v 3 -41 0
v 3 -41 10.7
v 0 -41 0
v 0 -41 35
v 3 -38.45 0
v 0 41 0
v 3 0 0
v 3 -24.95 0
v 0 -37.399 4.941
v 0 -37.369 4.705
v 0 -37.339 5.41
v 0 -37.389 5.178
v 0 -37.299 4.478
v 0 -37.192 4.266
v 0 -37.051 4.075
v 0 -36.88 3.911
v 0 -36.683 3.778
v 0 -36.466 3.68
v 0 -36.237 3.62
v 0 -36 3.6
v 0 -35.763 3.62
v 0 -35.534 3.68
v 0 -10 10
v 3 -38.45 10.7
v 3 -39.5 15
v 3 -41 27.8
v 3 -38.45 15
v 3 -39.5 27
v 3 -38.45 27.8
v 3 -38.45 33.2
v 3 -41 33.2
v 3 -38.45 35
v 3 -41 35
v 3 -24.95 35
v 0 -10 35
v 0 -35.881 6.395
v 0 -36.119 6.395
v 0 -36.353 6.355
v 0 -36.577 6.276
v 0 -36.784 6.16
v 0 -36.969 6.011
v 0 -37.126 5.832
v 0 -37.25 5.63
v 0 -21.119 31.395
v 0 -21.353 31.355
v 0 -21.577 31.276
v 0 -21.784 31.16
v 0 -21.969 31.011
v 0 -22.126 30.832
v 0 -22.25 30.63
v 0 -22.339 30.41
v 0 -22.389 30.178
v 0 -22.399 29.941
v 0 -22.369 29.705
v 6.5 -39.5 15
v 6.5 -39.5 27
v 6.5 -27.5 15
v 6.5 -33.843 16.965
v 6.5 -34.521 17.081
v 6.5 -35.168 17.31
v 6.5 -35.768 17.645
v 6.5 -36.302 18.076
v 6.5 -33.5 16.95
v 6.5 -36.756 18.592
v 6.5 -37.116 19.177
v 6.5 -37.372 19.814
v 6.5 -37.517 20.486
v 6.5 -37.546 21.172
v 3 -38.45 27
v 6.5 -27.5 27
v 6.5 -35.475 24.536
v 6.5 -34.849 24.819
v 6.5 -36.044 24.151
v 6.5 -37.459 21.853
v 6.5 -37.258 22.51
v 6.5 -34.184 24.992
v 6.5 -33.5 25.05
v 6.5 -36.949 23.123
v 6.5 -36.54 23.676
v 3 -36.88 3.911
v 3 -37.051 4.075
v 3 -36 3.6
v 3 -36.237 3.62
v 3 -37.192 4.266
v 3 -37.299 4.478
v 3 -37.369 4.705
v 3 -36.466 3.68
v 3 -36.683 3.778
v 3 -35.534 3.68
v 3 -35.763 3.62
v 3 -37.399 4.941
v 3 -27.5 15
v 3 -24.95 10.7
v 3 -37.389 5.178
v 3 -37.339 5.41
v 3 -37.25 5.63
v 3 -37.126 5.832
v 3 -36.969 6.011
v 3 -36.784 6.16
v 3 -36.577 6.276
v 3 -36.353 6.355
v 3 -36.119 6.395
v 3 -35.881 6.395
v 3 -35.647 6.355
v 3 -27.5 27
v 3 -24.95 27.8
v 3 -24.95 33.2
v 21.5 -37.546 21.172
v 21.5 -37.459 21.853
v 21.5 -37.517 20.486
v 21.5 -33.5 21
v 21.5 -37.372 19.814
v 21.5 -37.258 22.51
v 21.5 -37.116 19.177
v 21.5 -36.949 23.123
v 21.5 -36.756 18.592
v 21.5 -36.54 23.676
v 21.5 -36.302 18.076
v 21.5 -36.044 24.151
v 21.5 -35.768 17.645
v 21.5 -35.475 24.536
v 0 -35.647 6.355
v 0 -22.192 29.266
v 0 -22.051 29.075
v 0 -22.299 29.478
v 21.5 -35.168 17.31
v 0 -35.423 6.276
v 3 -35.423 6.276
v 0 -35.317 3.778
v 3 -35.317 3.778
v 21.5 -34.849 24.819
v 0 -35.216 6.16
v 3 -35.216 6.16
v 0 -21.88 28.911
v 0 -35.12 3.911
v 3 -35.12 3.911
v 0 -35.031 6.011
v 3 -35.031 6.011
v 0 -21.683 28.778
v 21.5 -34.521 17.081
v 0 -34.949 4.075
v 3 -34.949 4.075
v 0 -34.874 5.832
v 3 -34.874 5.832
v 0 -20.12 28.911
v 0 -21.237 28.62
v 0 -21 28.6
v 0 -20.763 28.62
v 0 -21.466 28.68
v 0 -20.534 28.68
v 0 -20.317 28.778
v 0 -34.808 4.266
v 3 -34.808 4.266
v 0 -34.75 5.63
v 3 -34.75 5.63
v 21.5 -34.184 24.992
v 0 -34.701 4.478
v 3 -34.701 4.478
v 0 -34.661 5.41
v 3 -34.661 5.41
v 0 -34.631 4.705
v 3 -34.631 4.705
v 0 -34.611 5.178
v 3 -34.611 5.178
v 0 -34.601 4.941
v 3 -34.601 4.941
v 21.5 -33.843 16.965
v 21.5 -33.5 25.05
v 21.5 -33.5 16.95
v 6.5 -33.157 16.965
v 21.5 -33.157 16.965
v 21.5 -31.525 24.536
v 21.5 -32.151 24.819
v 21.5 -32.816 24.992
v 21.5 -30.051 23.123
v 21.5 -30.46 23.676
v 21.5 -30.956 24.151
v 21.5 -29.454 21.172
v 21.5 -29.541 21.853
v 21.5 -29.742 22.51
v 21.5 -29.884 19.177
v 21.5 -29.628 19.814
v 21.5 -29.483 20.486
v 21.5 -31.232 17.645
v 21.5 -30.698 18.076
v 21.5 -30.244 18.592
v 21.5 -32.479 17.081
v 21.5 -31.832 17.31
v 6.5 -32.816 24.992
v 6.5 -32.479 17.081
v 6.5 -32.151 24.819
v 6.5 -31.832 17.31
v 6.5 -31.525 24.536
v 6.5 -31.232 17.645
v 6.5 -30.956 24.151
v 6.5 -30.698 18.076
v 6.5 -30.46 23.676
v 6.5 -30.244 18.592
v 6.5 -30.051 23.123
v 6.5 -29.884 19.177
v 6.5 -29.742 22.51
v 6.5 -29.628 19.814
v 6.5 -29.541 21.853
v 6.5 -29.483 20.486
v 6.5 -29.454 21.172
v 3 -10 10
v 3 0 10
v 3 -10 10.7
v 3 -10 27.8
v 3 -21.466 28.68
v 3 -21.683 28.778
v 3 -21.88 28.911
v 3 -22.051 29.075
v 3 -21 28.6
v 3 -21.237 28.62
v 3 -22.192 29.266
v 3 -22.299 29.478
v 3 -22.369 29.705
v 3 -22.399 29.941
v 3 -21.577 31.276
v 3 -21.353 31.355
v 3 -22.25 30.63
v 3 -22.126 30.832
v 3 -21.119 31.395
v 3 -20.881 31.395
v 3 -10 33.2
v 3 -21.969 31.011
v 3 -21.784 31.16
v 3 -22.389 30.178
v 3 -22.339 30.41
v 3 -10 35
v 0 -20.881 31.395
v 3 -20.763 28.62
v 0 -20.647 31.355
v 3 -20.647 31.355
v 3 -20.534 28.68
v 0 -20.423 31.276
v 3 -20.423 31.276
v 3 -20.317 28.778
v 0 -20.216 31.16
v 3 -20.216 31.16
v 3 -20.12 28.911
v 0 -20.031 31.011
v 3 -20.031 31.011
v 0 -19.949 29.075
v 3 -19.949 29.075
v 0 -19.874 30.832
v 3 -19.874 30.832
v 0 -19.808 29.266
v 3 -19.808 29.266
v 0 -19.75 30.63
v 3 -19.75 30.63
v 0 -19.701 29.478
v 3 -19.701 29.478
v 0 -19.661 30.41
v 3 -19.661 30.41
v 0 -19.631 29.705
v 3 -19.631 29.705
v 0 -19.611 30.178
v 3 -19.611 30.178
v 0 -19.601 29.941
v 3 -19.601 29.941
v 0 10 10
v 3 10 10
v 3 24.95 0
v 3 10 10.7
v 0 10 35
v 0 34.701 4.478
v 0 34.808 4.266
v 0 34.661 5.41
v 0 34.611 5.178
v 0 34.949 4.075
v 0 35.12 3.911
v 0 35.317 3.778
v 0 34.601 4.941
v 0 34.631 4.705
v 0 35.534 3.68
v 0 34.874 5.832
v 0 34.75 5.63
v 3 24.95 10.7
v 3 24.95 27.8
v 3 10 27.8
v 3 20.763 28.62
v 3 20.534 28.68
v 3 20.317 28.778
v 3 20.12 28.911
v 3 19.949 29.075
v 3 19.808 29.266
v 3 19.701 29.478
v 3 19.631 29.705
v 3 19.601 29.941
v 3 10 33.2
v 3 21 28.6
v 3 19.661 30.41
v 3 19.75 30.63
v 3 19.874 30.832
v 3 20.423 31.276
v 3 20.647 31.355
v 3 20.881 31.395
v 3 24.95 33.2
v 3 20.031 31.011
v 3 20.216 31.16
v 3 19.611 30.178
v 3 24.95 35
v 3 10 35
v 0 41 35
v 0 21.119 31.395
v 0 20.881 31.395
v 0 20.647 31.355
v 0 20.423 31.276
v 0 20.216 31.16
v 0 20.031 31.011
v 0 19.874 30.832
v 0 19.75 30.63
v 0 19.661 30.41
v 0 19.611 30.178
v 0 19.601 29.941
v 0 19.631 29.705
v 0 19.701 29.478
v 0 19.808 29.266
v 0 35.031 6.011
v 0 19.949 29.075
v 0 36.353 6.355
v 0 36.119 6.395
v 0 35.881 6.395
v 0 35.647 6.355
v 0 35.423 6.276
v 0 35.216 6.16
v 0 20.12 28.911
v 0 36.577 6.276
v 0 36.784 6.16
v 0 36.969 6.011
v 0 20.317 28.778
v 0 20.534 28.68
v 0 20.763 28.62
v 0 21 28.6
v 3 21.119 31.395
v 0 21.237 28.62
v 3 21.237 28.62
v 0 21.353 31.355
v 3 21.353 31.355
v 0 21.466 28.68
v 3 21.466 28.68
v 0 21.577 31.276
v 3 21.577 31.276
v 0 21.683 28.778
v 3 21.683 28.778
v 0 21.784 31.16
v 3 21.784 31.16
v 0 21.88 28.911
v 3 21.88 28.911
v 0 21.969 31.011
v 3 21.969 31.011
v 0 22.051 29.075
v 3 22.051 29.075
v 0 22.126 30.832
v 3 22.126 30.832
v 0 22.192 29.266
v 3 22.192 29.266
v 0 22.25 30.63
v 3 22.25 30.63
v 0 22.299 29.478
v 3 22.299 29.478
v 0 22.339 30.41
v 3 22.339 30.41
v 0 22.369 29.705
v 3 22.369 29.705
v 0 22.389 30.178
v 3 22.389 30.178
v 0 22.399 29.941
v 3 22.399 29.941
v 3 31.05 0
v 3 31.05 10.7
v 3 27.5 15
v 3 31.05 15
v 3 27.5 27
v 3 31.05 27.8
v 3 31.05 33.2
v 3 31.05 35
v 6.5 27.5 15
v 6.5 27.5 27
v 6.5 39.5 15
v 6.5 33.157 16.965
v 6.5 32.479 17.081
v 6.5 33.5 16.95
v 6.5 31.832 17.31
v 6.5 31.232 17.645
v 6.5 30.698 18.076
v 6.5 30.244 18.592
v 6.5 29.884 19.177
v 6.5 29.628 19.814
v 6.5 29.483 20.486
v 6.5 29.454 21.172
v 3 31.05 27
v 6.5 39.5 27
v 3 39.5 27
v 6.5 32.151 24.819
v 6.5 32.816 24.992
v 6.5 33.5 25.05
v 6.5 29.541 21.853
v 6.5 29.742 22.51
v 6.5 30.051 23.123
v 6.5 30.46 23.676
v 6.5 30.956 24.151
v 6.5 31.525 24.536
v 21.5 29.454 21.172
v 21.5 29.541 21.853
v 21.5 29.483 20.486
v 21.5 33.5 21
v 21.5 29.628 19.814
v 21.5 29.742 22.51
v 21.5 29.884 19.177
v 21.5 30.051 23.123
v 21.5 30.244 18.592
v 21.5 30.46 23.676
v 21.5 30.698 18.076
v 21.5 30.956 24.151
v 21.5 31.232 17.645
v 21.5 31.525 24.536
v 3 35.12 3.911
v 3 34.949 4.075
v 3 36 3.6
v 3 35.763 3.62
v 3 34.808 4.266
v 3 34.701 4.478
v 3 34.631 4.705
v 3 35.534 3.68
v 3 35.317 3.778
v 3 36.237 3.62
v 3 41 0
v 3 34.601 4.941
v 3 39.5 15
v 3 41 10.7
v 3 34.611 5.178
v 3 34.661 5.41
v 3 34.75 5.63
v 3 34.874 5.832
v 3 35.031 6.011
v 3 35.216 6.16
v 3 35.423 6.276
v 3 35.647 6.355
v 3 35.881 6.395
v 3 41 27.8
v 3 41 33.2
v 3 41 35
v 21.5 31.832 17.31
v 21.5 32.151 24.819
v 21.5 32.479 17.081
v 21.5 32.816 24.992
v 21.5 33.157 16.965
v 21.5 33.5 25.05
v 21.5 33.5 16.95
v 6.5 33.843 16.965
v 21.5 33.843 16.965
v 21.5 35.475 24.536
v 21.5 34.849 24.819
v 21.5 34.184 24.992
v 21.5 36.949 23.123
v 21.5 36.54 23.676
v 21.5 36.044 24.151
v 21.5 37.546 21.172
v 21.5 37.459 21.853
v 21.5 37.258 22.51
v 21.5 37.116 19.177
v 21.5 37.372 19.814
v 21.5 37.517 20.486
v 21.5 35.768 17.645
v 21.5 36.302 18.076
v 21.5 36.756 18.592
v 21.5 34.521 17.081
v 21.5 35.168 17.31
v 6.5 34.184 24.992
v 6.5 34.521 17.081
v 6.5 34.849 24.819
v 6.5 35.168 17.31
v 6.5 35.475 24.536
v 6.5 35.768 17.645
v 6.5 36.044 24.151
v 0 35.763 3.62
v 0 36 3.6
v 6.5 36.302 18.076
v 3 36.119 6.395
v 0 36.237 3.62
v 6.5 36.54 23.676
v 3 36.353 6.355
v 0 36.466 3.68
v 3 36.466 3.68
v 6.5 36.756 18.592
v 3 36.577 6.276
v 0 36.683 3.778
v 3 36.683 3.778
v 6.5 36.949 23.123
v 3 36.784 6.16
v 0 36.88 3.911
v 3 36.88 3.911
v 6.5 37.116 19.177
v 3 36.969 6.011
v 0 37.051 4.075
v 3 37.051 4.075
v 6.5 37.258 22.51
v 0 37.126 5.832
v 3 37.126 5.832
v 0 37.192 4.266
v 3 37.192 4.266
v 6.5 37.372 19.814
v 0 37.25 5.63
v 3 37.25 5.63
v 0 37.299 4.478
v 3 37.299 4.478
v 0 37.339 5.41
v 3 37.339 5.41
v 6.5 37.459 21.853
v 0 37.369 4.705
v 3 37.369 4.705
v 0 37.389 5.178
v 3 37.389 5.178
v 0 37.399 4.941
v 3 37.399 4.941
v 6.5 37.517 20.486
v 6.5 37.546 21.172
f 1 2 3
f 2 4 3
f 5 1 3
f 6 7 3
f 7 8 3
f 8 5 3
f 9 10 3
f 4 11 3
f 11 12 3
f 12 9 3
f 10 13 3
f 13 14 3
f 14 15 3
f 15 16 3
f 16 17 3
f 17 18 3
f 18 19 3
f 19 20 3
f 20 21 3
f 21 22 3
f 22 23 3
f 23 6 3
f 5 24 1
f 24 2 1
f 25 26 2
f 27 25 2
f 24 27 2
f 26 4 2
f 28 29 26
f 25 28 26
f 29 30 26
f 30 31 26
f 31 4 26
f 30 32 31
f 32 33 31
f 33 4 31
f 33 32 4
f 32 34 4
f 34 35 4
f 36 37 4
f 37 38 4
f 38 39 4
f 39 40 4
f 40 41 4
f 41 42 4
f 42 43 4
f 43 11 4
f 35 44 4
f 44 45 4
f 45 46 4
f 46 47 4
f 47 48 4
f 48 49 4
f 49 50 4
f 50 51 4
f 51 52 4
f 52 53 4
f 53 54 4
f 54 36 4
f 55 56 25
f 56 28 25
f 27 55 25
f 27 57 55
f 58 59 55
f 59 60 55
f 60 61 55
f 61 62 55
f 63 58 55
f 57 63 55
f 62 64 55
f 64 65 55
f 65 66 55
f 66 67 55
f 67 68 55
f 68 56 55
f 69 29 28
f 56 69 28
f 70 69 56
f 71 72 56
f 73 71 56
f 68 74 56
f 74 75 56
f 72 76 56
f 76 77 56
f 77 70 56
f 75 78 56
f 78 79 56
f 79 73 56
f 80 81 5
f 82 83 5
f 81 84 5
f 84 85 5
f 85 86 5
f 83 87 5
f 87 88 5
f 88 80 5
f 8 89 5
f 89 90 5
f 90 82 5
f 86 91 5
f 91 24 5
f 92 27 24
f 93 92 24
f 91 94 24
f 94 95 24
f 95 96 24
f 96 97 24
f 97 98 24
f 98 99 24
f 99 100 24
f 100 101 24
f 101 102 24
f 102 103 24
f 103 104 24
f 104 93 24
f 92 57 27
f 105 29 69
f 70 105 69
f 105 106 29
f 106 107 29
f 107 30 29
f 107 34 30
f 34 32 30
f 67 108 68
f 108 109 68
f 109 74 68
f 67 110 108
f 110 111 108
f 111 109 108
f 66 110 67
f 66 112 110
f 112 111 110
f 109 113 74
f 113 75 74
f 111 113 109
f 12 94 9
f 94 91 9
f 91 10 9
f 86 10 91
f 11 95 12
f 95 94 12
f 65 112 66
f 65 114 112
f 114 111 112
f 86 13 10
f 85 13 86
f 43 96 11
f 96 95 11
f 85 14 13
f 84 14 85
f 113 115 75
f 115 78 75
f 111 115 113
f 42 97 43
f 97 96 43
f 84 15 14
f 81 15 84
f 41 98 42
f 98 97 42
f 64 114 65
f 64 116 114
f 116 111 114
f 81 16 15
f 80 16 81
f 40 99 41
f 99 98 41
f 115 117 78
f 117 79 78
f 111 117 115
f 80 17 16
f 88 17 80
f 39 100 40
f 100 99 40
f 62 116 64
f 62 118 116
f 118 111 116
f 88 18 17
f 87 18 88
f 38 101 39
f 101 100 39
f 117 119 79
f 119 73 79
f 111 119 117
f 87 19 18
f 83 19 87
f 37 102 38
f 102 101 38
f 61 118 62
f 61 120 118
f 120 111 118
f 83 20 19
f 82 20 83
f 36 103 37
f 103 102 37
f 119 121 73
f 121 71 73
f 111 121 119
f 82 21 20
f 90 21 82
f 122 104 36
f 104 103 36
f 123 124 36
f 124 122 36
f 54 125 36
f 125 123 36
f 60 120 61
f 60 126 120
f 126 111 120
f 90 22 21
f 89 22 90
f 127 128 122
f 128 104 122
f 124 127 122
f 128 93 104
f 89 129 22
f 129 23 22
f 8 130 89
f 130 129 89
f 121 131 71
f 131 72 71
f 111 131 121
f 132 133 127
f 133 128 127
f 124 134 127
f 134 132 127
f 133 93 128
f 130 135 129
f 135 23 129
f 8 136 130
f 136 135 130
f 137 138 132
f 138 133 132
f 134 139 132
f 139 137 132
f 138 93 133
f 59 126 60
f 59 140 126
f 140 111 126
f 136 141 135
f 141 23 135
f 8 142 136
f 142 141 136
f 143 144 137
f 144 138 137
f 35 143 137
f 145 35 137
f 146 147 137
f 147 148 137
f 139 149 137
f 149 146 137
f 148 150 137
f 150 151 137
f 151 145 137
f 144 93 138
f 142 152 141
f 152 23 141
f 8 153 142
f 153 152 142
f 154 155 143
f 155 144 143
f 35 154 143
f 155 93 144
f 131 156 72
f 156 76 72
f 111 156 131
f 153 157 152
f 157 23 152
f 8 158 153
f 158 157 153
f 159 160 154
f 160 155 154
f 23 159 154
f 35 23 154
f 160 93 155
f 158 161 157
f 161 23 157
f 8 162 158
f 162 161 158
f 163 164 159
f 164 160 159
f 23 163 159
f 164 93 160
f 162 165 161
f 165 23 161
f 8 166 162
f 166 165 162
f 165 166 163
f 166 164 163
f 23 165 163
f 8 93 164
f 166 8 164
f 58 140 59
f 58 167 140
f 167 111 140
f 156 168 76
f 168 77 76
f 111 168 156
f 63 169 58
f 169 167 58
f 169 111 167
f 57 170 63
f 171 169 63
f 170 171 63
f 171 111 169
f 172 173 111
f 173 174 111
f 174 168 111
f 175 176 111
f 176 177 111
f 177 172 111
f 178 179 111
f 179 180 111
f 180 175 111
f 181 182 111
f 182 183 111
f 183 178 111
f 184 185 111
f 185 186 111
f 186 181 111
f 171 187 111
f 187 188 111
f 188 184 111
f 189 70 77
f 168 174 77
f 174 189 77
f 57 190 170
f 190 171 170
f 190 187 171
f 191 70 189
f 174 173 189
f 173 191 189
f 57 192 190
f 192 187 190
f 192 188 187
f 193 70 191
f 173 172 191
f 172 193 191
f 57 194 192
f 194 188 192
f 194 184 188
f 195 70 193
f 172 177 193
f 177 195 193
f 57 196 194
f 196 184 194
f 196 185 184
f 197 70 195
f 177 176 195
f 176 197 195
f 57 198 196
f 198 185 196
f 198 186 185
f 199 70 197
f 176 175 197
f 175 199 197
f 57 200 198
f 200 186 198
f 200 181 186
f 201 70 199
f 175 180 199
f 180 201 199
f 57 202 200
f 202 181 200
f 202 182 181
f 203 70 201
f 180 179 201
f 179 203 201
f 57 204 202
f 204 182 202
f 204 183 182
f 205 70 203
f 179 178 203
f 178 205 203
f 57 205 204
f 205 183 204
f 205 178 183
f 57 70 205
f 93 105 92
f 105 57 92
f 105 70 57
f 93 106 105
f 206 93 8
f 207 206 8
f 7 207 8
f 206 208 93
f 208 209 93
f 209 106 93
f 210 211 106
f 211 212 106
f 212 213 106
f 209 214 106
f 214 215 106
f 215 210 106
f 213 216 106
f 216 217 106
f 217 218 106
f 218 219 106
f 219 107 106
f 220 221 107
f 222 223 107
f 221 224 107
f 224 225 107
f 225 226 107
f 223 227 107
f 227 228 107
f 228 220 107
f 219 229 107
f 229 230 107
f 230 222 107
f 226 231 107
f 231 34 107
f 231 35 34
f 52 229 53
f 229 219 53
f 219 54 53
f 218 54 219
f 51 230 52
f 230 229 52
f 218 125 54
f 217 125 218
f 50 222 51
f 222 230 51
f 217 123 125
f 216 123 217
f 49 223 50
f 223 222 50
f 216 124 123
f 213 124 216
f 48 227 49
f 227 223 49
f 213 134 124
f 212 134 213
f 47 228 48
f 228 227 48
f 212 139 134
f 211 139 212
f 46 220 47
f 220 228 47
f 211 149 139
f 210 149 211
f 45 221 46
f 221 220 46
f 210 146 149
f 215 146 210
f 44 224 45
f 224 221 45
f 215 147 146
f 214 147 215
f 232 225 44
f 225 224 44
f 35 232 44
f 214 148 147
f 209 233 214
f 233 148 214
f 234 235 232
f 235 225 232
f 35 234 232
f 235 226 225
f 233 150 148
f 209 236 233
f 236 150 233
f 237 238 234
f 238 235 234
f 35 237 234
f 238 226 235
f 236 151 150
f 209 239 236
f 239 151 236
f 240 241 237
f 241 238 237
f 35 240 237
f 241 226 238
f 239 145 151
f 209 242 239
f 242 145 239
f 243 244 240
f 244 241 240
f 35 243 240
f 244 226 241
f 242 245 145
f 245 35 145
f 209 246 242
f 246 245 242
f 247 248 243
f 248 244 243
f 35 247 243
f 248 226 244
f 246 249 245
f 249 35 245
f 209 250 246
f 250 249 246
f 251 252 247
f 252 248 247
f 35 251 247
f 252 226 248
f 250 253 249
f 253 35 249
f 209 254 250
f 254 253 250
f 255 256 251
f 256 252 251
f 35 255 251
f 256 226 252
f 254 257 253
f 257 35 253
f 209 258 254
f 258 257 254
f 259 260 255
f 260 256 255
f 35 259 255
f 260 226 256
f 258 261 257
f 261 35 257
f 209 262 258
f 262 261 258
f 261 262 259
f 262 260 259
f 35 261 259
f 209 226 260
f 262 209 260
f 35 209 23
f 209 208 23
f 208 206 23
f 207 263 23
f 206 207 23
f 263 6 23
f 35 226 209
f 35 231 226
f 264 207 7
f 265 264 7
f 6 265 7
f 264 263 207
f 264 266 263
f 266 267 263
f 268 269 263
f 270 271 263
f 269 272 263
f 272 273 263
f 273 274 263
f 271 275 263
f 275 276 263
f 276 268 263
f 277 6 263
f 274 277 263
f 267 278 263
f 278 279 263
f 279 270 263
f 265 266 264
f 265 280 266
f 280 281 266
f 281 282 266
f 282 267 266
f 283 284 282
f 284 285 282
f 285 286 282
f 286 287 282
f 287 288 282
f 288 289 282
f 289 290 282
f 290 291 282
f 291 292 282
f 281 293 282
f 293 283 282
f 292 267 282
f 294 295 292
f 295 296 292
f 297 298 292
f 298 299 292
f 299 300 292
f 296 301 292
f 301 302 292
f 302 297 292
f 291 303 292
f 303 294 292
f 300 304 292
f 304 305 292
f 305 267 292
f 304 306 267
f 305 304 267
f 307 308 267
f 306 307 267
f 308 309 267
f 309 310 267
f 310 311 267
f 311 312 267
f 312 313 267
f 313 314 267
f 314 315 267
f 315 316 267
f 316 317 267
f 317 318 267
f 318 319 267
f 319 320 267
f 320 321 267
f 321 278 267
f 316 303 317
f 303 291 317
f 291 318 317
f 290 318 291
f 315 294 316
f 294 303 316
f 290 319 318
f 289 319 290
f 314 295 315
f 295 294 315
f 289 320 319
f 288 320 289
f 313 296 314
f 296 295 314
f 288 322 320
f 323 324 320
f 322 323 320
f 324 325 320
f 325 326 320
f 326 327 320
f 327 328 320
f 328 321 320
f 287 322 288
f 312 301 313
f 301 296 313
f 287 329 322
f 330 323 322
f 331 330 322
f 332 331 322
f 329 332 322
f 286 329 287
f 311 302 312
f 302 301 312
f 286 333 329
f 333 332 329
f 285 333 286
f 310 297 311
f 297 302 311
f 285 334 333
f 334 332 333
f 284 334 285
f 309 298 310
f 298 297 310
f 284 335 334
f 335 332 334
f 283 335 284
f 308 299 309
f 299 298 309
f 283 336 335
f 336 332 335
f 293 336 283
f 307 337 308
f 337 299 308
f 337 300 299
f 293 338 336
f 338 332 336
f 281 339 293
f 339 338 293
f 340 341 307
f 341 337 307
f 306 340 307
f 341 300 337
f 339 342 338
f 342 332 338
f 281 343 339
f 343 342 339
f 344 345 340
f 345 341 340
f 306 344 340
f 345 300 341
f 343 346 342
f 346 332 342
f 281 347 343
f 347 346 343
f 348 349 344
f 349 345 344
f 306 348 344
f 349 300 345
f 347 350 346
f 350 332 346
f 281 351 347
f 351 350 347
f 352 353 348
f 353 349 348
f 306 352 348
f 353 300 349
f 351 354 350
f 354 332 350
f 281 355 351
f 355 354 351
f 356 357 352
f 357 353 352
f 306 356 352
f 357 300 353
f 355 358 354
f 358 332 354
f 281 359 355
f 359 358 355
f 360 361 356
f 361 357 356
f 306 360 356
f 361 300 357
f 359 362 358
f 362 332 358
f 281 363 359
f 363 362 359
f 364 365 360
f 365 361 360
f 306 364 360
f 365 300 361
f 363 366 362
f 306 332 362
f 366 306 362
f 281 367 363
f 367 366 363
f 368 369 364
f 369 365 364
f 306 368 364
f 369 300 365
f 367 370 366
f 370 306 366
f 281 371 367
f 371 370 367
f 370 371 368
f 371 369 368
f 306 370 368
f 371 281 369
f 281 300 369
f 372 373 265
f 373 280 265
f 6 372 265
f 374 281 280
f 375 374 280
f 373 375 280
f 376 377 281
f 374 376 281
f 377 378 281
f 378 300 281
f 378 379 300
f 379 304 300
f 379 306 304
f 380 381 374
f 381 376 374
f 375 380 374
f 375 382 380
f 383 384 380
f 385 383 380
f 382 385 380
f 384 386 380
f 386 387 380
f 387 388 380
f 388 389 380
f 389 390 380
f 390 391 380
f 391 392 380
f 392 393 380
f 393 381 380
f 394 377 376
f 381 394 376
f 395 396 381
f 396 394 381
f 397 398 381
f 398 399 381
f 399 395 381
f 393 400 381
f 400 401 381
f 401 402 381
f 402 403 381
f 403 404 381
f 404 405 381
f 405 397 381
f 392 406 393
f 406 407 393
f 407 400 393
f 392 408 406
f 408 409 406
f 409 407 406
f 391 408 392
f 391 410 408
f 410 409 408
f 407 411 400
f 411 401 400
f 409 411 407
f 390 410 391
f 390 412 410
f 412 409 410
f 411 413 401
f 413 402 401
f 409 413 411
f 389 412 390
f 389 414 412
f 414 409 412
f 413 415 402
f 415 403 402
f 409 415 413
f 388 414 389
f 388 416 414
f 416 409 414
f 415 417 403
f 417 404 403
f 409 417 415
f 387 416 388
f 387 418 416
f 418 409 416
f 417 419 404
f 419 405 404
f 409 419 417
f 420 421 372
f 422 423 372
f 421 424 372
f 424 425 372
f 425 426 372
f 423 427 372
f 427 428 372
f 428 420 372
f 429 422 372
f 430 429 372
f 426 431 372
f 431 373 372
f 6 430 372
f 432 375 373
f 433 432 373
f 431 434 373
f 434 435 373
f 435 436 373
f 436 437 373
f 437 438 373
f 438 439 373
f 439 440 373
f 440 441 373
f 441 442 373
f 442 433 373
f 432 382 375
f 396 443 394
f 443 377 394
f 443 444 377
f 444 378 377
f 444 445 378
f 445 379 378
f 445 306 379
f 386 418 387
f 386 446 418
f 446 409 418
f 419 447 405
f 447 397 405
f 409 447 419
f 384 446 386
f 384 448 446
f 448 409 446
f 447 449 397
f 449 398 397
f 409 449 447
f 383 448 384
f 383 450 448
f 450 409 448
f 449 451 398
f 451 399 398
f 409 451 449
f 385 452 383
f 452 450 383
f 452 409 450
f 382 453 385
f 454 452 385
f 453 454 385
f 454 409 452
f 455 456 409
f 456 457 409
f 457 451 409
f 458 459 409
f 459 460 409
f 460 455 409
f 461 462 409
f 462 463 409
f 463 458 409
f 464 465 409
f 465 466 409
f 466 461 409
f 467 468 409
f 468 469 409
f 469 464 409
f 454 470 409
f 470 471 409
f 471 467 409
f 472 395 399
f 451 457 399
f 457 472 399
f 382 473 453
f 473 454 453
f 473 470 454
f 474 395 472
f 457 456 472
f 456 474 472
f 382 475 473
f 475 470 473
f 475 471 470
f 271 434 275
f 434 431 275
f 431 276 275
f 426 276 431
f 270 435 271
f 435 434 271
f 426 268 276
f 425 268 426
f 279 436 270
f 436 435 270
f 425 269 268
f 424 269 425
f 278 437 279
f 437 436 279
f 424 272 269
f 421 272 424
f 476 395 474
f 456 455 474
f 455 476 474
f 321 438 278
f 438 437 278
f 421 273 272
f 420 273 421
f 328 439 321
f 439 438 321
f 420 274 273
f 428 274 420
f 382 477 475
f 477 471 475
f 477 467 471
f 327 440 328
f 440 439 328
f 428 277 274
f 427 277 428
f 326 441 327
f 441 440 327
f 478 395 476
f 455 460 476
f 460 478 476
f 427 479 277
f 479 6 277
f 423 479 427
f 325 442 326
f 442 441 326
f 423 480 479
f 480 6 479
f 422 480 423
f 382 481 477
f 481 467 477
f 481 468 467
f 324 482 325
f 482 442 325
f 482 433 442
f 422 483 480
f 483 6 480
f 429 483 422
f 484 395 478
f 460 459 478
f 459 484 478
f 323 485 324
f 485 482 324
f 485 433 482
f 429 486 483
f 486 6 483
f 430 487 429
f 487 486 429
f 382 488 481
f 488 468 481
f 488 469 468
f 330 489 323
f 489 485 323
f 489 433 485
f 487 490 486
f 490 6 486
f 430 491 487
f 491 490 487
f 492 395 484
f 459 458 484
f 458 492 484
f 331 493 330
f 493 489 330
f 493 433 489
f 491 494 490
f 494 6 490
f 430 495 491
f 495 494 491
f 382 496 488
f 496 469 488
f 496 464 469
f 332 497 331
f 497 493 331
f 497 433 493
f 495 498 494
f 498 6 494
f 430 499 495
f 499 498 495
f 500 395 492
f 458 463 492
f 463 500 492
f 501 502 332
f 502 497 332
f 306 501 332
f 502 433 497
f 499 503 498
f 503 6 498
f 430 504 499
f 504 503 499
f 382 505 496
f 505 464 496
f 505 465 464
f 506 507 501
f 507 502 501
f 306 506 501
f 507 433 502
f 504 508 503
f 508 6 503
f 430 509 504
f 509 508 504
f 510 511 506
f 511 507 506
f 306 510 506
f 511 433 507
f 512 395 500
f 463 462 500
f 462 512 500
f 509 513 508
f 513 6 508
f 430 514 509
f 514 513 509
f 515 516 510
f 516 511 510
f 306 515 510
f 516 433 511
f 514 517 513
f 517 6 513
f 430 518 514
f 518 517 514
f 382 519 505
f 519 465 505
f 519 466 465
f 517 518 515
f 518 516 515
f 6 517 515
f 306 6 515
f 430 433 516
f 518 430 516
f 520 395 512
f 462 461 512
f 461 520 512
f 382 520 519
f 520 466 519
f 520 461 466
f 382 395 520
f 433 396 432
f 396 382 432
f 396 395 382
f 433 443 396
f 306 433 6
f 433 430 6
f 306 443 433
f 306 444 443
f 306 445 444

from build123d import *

# Parameters (mm, degrees)
EXTRUDE_1_DEPTH     = 3
SKETCH_2_W          = 12
SKETCH_2_H          = 12
EXTRUDE_2_DEPTH     = 3.5
SKETCH_3_R          = 4.05
EXTRUDE_3_DEPTH     = 15
CUT_EXTRUDE_1_REACH = 58.993
SKETCH_4_R          = 1.4


with BuildPart() as part:
    # 草圖1 → 填料-伸長1 (new body)
    with BuildSketch(Plane(origin=(0, 0, 0), x_dir=(0, 0, -1), z_dir=(1, 0, 0))):
        Polygon((-35, -10), (-35, -41), (0, -41), (0, 41), (-35, 41), (-35, 10), (-10, 10), (-10, -10), align=None)
    extrude(amount=EXTRUDE_1_DEPTH)

    # 草圖2 → 填料-伸長2 (add)
    with BuildSketch(Plane(origin=(3, 0, 0), x_dir=(0, 0, -1), z_dir=(1, 0, 0))):
        with Locations((-21, -33.5)):
            Rectangle(SKETCH_2_W, SKETCH_2_H)
    extrude_2 = extrude(amount=EXTRUDE_2_DEPTH)

    # 草圖3 → 填料-伸長3 (add)
    with BuildSketch(Plane(origin=(6.5, 0, 0), x_dir=(0, 0, -1), z_dir=(1, 0, 0))):
        with Locations((-21, -33.5)):
            Circle(SKETCH_3_R)
    extrude_3 = extrude(amount=EXTRUDE_3_DEPTH)

    # 鏡射1: 填料-伸長2, 填料-伸長3 across plane
    add(extrude_2.mirror(Plane.ZX))
    add(extrude_3.mirror(Plane.ZX))

    # 草圖4 → 除料-伸長1 (cut, up to next)
    with BuildSketch(Plane(origin=(3, 0, 0), x_dir=(0, 0, -1), z_dir=(1, 0, 0)), mode=Mode.PRIVATE) as cut_extrude_1_sk1:
        with Locations((-30, -21)):
            Circle(SKETCH_4_R)
    cut_extrude_1_tool1 = extrude(cut_extrude_1_sk1.sketch, amount=-CUT_EXTRUDE_1_REACH, mode=Mode.PRIVATE) & part.part
    # 草圖4 → 除料-伸長1 (cut, up to next)
    with BuildSketch(Plane(origin=(3, 0, 0), x_dir=(0, 0, -1), z_dir=(1, 0, 0)), mode=Mode.PRIVATE) as cut_extrude_1_sk2:
        with Locations((-5, -36)):
            Circle(SKETCH_4_R)
    cut_extrude_1_tool2 = extrude(cut_extrude_1_sk2.sketch, amount=-CUT_EXTRUDE_1_REACH, mode=Mode.PRIVATE) & part.part
    cut_extrude_1_1 = cut_extrude_1_tool1.solids().sort_by_distance((3, -21, 30))[0]
    add(cut_extrude_1_1, mode=Mode.SUBTRACT)
    cut_extrude_1_2 = cut_extrude_1_tool2.solids().sort_by_distance((3, -36, 5))[0]
    add(cut_extrude_1_2, mode=Mode.SUBTRACT)
    cut_extrude_1 = cut_extrude_1_1 + cut_extrude_1_2  # 除料-伸長1 as one shape, for the pattern or mirror that repeats it

    # 鏡射2: 除料-伸長1 across plane
    add(cut_extrude_1.mirror(Plane.ZX), mode=Mode.SUBTRACT)


solid = part.part
